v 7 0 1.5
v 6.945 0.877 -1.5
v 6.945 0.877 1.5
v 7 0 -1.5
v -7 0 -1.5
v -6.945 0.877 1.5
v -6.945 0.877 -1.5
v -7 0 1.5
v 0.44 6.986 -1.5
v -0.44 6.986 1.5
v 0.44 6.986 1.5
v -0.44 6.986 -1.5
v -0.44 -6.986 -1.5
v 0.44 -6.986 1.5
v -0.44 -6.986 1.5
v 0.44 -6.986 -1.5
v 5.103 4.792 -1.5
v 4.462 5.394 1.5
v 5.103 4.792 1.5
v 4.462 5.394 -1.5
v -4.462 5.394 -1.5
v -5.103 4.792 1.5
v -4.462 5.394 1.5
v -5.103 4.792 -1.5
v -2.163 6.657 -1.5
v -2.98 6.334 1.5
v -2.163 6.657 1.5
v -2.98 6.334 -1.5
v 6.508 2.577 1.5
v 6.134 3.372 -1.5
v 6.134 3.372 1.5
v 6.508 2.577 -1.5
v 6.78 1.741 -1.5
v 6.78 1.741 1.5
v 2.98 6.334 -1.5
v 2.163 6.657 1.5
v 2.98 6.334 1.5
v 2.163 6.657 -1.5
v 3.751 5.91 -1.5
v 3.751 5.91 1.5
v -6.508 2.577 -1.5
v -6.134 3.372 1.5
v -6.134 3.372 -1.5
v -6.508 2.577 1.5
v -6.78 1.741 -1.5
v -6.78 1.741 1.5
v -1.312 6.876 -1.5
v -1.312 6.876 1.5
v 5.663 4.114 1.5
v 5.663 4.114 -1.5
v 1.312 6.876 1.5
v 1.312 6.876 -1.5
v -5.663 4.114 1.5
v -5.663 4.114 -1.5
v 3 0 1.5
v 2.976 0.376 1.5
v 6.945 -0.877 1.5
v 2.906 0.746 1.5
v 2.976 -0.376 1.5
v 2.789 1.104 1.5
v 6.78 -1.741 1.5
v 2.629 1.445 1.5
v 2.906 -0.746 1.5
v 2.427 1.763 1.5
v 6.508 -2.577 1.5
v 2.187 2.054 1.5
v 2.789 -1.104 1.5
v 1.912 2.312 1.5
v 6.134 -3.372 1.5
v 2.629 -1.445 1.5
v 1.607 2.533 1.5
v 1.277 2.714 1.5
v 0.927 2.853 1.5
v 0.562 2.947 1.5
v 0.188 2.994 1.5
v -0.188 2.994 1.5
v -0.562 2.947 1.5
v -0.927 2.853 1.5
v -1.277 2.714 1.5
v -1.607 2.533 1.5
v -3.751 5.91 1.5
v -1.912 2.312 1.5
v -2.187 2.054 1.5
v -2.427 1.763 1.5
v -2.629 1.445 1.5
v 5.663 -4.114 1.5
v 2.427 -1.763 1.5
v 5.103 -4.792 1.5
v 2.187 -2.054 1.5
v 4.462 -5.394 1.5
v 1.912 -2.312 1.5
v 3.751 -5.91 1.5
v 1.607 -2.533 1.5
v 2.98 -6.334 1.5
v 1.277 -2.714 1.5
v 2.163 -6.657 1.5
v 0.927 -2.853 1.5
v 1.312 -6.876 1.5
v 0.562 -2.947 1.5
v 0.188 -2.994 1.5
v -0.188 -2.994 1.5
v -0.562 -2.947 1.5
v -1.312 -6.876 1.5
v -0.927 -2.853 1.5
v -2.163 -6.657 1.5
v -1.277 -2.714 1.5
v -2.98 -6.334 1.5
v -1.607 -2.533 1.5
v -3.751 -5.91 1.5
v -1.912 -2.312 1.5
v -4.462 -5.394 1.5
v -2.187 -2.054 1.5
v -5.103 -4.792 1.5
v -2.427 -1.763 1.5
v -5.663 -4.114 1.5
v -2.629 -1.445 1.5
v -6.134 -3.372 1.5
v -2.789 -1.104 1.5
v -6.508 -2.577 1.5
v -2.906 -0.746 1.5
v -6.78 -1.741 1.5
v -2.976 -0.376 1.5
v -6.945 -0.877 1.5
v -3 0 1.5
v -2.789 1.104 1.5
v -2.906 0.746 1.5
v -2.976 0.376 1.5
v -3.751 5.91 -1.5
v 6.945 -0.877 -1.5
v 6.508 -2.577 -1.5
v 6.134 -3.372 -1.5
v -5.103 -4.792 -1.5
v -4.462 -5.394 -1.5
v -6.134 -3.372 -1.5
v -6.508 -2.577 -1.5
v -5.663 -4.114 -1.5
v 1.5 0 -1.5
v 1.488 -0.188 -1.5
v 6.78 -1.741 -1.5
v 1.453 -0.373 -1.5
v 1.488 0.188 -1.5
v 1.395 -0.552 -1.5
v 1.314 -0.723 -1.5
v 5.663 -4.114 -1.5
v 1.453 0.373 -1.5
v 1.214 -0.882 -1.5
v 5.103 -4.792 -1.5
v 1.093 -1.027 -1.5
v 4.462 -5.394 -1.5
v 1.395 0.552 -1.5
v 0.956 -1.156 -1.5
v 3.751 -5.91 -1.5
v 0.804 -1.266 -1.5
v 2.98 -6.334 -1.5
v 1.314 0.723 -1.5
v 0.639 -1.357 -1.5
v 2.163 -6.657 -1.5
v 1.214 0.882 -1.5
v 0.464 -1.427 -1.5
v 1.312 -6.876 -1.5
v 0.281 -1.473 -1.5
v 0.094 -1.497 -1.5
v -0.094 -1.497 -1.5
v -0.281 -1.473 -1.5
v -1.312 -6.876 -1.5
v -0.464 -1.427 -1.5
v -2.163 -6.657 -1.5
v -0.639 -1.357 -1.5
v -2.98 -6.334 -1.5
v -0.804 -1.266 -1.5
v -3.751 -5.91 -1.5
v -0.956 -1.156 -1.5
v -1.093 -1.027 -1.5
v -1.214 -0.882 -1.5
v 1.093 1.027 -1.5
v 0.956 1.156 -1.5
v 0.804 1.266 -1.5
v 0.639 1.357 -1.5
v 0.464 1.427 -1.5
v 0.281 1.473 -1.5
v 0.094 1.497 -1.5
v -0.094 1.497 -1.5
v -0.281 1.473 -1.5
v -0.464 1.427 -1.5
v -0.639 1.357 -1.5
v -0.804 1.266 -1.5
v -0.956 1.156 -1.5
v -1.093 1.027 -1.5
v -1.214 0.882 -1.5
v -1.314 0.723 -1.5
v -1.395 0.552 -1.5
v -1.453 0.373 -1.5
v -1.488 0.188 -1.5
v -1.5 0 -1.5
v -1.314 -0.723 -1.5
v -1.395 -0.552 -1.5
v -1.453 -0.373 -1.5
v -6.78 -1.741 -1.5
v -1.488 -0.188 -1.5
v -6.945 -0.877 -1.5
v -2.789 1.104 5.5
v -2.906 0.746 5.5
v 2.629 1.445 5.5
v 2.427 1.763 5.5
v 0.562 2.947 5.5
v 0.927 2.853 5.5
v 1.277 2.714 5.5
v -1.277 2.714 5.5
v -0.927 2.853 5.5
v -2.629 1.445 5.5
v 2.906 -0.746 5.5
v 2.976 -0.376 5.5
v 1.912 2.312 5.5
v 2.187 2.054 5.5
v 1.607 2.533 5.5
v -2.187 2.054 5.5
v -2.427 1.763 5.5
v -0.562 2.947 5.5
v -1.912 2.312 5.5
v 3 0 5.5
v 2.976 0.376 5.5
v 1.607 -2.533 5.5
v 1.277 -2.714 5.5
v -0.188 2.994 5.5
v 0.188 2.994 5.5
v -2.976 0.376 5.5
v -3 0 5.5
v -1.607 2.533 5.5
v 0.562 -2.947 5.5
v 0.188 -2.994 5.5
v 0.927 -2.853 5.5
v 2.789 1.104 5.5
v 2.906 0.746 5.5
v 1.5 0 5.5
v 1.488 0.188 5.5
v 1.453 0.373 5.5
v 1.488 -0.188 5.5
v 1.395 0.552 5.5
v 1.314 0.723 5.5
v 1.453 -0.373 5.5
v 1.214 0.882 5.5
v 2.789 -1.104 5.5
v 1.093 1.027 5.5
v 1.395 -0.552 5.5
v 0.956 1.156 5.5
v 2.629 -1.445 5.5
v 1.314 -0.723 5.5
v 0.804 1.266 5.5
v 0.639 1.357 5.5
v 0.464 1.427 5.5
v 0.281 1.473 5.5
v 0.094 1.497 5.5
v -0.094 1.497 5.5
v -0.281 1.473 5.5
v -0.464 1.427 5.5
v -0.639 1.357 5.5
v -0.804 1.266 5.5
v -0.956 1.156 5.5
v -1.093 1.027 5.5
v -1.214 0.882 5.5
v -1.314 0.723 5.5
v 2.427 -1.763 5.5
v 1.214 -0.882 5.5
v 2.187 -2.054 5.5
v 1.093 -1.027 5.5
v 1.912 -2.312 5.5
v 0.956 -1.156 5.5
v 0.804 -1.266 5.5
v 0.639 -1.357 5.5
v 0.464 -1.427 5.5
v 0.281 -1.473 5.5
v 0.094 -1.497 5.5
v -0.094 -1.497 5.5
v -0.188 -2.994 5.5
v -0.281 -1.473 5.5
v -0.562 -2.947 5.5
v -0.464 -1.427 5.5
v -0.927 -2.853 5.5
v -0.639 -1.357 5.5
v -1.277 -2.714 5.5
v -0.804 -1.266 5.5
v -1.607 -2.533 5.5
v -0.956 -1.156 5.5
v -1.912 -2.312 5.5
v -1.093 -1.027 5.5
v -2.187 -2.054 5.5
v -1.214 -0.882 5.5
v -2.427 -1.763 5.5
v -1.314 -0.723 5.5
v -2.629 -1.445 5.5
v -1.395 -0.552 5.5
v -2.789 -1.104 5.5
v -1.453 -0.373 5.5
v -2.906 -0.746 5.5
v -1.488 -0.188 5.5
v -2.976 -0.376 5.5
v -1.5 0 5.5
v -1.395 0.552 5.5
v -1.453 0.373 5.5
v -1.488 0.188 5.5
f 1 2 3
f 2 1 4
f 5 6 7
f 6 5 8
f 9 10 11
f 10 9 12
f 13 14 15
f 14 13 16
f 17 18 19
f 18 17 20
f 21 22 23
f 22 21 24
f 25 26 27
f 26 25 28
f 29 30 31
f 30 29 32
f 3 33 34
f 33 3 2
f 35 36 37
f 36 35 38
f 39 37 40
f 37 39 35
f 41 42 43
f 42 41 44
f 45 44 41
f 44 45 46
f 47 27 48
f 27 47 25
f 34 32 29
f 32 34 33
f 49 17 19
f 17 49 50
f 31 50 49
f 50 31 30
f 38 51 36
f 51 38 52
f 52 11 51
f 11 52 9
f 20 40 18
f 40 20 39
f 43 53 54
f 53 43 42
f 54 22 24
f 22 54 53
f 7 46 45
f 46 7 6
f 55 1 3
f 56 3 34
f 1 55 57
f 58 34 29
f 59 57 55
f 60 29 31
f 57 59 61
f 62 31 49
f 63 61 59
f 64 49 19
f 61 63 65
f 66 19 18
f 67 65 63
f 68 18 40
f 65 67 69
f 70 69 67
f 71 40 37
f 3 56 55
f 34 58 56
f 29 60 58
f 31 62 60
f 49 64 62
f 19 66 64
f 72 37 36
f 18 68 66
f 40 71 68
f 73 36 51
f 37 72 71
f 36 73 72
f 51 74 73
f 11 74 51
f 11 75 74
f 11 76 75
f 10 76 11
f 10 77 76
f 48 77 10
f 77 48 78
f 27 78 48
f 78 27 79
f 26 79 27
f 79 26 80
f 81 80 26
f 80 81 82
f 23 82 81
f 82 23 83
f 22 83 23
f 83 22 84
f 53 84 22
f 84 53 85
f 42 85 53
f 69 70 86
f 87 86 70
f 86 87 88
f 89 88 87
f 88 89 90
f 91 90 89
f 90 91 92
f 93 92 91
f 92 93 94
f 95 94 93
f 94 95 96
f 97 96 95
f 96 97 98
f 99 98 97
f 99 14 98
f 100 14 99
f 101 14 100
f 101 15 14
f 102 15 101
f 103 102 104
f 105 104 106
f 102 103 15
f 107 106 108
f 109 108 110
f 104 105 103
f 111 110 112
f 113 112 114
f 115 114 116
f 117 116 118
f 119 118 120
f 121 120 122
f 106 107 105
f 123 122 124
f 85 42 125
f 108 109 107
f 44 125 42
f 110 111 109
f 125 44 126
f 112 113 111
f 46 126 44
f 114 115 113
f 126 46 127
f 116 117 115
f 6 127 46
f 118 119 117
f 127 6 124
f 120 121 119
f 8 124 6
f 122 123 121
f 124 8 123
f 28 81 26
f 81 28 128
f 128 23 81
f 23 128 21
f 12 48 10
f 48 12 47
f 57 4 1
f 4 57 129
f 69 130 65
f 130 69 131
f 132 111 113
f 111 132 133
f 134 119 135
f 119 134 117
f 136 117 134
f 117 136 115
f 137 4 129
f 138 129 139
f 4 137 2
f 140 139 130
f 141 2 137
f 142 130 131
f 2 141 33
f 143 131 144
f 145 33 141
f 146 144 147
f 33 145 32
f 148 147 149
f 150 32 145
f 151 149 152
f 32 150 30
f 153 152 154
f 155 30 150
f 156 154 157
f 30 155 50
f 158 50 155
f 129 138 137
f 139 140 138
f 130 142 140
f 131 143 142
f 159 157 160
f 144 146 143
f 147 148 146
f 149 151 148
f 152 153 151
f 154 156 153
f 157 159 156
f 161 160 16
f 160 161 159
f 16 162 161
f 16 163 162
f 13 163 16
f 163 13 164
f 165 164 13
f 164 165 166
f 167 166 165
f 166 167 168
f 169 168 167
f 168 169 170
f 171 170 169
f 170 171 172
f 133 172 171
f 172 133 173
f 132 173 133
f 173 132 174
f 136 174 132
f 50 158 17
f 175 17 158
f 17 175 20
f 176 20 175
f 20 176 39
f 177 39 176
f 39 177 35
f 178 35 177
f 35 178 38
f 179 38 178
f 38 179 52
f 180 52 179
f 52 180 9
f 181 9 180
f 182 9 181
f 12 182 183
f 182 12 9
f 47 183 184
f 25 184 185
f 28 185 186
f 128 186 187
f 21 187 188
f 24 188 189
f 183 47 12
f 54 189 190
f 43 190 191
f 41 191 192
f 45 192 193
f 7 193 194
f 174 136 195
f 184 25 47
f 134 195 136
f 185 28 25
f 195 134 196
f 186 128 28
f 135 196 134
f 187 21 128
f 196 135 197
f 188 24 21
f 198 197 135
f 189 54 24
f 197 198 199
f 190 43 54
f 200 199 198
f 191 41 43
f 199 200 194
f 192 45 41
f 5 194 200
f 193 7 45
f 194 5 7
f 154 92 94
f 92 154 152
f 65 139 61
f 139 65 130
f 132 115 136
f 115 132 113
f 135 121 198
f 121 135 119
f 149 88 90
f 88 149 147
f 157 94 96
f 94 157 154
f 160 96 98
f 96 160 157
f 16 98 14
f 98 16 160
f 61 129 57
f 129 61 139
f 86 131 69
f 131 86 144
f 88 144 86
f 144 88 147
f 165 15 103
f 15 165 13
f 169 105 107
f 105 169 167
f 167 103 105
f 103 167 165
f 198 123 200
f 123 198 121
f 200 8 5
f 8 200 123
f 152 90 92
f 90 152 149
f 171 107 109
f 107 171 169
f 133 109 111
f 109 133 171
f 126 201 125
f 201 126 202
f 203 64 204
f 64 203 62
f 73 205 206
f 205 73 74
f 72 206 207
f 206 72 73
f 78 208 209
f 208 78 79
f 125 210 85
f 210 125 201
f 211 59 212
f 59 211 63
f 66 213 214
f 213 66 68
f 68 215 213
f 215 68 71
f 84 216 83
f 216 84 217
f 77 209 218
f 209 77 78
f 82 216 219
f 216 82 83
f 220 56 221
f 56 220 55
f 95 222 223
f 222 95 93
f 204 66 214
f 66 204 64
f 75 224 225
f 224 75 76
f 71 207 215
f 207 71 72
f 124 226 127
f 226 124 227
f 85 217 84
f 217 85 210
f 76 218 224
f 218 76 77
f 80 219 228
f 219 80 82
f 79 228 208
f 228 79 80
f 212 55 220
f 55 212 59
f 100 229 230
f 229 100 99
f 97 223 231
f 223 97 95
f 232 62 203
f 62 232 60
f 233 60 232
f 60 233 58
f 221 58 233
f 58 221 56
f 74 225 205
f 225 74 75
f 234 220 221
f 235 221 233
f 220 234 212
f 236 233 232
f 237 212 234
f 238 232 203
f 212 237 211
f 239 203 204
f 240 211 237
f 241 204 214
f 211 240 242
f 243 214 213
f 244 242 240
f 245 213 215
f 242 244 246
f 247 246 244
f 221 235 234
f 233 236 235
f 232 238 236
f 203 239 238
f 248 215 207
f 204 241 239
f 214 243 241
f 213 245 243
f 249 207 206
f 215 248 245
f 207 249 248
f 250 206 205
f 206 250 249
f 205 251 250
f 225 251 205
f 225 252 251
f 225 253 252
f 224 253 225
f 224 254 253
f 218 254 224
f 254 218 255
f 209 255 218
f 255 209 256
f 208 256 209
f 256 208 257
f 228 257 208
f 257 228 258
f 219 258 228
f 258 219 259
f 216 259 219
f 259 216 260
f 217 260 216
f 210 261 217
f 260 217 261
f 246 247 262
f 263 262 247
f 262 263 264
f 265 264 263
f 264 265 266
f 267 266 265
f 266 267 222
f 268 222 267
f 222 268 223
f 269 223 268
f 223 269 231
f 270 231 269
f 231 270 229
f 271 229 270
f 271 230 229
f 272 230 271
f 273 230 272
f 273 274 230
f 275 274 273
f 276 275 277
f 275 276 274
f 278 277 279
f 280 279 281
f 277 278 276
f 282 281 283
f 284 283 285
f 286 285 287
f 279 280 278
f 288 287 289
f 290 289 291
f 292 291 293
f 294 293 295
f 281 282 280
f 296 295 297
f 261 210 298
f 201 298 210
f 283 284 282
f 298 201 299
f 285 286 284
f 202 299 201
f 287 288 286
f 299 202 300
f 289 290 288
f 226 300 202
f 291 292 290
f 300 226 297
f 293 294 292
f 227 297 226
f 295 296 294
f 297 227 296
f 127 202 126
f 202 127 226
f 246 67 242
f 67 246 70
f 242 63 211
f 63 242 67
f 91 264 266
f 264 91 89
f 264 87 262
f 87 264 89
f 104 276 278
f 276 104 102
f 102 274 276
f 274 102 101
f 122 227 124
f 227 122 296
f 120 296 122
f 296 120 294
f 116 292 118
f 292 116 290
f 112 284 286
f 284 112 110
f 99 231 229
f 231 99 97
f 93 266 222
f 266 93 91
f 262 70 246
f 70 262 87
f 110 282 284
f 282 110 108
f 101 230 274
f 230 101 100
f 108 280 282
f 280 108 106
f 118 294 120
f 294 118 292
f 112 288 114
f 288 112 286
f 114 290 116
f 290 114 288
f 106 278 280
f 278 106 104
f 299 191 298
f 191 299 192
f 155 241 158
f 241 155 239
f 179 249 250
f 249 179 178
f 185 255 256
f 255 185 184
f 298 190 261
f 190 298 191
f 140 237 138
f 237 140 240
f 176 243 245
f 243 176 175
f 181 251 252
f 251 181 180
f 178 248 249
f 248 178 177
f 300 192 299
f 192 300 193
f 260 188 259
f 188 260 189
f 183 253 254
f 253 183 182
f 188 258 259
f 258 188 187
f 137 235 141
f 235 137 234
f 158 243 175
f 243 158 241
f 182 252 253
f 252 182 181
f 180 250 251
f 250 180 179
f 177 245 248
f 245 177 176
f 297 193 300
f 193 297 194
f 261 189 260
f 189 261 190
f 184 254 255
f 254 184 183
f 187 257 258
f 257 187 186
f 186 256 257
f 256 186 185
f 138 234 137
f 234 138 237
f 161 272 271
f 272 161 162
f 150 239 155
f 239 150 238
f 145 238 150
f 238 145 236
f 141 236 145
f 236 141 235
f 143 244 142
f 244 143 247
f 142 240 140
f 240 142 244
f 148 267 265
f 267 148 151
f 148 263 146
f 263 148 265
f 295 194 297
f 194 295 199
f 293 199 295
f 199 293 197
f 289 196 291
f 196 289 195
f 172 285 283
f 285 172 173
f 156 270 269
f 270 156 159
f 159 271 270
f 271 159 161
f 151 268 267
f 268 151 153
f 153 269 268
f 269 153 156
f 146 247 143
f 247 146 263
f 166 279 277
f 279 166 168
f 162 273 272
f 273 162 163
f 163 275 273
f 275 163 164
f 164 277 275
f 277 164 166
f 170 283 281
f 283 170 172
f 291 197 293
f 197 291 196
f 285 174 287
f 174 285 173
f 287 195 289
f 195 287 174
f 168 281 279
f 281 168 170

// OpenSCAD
$fn = 50;


difference() {
	union() {
		translate(v = [0, 0, -1.5000000000]) {
			cylinder(h = 3, r = 7.0000000000);
		}
		translate(v = [0, 0, -1.5000000000]) {
			cylinder(h = 7, r = 3.0000000000);
		}
	}
	union() {
		translate(v = [0, 0, -50.0000000000]) {
			cylinder(h = 100, r = 1.5000000000);
		}
	}
}
